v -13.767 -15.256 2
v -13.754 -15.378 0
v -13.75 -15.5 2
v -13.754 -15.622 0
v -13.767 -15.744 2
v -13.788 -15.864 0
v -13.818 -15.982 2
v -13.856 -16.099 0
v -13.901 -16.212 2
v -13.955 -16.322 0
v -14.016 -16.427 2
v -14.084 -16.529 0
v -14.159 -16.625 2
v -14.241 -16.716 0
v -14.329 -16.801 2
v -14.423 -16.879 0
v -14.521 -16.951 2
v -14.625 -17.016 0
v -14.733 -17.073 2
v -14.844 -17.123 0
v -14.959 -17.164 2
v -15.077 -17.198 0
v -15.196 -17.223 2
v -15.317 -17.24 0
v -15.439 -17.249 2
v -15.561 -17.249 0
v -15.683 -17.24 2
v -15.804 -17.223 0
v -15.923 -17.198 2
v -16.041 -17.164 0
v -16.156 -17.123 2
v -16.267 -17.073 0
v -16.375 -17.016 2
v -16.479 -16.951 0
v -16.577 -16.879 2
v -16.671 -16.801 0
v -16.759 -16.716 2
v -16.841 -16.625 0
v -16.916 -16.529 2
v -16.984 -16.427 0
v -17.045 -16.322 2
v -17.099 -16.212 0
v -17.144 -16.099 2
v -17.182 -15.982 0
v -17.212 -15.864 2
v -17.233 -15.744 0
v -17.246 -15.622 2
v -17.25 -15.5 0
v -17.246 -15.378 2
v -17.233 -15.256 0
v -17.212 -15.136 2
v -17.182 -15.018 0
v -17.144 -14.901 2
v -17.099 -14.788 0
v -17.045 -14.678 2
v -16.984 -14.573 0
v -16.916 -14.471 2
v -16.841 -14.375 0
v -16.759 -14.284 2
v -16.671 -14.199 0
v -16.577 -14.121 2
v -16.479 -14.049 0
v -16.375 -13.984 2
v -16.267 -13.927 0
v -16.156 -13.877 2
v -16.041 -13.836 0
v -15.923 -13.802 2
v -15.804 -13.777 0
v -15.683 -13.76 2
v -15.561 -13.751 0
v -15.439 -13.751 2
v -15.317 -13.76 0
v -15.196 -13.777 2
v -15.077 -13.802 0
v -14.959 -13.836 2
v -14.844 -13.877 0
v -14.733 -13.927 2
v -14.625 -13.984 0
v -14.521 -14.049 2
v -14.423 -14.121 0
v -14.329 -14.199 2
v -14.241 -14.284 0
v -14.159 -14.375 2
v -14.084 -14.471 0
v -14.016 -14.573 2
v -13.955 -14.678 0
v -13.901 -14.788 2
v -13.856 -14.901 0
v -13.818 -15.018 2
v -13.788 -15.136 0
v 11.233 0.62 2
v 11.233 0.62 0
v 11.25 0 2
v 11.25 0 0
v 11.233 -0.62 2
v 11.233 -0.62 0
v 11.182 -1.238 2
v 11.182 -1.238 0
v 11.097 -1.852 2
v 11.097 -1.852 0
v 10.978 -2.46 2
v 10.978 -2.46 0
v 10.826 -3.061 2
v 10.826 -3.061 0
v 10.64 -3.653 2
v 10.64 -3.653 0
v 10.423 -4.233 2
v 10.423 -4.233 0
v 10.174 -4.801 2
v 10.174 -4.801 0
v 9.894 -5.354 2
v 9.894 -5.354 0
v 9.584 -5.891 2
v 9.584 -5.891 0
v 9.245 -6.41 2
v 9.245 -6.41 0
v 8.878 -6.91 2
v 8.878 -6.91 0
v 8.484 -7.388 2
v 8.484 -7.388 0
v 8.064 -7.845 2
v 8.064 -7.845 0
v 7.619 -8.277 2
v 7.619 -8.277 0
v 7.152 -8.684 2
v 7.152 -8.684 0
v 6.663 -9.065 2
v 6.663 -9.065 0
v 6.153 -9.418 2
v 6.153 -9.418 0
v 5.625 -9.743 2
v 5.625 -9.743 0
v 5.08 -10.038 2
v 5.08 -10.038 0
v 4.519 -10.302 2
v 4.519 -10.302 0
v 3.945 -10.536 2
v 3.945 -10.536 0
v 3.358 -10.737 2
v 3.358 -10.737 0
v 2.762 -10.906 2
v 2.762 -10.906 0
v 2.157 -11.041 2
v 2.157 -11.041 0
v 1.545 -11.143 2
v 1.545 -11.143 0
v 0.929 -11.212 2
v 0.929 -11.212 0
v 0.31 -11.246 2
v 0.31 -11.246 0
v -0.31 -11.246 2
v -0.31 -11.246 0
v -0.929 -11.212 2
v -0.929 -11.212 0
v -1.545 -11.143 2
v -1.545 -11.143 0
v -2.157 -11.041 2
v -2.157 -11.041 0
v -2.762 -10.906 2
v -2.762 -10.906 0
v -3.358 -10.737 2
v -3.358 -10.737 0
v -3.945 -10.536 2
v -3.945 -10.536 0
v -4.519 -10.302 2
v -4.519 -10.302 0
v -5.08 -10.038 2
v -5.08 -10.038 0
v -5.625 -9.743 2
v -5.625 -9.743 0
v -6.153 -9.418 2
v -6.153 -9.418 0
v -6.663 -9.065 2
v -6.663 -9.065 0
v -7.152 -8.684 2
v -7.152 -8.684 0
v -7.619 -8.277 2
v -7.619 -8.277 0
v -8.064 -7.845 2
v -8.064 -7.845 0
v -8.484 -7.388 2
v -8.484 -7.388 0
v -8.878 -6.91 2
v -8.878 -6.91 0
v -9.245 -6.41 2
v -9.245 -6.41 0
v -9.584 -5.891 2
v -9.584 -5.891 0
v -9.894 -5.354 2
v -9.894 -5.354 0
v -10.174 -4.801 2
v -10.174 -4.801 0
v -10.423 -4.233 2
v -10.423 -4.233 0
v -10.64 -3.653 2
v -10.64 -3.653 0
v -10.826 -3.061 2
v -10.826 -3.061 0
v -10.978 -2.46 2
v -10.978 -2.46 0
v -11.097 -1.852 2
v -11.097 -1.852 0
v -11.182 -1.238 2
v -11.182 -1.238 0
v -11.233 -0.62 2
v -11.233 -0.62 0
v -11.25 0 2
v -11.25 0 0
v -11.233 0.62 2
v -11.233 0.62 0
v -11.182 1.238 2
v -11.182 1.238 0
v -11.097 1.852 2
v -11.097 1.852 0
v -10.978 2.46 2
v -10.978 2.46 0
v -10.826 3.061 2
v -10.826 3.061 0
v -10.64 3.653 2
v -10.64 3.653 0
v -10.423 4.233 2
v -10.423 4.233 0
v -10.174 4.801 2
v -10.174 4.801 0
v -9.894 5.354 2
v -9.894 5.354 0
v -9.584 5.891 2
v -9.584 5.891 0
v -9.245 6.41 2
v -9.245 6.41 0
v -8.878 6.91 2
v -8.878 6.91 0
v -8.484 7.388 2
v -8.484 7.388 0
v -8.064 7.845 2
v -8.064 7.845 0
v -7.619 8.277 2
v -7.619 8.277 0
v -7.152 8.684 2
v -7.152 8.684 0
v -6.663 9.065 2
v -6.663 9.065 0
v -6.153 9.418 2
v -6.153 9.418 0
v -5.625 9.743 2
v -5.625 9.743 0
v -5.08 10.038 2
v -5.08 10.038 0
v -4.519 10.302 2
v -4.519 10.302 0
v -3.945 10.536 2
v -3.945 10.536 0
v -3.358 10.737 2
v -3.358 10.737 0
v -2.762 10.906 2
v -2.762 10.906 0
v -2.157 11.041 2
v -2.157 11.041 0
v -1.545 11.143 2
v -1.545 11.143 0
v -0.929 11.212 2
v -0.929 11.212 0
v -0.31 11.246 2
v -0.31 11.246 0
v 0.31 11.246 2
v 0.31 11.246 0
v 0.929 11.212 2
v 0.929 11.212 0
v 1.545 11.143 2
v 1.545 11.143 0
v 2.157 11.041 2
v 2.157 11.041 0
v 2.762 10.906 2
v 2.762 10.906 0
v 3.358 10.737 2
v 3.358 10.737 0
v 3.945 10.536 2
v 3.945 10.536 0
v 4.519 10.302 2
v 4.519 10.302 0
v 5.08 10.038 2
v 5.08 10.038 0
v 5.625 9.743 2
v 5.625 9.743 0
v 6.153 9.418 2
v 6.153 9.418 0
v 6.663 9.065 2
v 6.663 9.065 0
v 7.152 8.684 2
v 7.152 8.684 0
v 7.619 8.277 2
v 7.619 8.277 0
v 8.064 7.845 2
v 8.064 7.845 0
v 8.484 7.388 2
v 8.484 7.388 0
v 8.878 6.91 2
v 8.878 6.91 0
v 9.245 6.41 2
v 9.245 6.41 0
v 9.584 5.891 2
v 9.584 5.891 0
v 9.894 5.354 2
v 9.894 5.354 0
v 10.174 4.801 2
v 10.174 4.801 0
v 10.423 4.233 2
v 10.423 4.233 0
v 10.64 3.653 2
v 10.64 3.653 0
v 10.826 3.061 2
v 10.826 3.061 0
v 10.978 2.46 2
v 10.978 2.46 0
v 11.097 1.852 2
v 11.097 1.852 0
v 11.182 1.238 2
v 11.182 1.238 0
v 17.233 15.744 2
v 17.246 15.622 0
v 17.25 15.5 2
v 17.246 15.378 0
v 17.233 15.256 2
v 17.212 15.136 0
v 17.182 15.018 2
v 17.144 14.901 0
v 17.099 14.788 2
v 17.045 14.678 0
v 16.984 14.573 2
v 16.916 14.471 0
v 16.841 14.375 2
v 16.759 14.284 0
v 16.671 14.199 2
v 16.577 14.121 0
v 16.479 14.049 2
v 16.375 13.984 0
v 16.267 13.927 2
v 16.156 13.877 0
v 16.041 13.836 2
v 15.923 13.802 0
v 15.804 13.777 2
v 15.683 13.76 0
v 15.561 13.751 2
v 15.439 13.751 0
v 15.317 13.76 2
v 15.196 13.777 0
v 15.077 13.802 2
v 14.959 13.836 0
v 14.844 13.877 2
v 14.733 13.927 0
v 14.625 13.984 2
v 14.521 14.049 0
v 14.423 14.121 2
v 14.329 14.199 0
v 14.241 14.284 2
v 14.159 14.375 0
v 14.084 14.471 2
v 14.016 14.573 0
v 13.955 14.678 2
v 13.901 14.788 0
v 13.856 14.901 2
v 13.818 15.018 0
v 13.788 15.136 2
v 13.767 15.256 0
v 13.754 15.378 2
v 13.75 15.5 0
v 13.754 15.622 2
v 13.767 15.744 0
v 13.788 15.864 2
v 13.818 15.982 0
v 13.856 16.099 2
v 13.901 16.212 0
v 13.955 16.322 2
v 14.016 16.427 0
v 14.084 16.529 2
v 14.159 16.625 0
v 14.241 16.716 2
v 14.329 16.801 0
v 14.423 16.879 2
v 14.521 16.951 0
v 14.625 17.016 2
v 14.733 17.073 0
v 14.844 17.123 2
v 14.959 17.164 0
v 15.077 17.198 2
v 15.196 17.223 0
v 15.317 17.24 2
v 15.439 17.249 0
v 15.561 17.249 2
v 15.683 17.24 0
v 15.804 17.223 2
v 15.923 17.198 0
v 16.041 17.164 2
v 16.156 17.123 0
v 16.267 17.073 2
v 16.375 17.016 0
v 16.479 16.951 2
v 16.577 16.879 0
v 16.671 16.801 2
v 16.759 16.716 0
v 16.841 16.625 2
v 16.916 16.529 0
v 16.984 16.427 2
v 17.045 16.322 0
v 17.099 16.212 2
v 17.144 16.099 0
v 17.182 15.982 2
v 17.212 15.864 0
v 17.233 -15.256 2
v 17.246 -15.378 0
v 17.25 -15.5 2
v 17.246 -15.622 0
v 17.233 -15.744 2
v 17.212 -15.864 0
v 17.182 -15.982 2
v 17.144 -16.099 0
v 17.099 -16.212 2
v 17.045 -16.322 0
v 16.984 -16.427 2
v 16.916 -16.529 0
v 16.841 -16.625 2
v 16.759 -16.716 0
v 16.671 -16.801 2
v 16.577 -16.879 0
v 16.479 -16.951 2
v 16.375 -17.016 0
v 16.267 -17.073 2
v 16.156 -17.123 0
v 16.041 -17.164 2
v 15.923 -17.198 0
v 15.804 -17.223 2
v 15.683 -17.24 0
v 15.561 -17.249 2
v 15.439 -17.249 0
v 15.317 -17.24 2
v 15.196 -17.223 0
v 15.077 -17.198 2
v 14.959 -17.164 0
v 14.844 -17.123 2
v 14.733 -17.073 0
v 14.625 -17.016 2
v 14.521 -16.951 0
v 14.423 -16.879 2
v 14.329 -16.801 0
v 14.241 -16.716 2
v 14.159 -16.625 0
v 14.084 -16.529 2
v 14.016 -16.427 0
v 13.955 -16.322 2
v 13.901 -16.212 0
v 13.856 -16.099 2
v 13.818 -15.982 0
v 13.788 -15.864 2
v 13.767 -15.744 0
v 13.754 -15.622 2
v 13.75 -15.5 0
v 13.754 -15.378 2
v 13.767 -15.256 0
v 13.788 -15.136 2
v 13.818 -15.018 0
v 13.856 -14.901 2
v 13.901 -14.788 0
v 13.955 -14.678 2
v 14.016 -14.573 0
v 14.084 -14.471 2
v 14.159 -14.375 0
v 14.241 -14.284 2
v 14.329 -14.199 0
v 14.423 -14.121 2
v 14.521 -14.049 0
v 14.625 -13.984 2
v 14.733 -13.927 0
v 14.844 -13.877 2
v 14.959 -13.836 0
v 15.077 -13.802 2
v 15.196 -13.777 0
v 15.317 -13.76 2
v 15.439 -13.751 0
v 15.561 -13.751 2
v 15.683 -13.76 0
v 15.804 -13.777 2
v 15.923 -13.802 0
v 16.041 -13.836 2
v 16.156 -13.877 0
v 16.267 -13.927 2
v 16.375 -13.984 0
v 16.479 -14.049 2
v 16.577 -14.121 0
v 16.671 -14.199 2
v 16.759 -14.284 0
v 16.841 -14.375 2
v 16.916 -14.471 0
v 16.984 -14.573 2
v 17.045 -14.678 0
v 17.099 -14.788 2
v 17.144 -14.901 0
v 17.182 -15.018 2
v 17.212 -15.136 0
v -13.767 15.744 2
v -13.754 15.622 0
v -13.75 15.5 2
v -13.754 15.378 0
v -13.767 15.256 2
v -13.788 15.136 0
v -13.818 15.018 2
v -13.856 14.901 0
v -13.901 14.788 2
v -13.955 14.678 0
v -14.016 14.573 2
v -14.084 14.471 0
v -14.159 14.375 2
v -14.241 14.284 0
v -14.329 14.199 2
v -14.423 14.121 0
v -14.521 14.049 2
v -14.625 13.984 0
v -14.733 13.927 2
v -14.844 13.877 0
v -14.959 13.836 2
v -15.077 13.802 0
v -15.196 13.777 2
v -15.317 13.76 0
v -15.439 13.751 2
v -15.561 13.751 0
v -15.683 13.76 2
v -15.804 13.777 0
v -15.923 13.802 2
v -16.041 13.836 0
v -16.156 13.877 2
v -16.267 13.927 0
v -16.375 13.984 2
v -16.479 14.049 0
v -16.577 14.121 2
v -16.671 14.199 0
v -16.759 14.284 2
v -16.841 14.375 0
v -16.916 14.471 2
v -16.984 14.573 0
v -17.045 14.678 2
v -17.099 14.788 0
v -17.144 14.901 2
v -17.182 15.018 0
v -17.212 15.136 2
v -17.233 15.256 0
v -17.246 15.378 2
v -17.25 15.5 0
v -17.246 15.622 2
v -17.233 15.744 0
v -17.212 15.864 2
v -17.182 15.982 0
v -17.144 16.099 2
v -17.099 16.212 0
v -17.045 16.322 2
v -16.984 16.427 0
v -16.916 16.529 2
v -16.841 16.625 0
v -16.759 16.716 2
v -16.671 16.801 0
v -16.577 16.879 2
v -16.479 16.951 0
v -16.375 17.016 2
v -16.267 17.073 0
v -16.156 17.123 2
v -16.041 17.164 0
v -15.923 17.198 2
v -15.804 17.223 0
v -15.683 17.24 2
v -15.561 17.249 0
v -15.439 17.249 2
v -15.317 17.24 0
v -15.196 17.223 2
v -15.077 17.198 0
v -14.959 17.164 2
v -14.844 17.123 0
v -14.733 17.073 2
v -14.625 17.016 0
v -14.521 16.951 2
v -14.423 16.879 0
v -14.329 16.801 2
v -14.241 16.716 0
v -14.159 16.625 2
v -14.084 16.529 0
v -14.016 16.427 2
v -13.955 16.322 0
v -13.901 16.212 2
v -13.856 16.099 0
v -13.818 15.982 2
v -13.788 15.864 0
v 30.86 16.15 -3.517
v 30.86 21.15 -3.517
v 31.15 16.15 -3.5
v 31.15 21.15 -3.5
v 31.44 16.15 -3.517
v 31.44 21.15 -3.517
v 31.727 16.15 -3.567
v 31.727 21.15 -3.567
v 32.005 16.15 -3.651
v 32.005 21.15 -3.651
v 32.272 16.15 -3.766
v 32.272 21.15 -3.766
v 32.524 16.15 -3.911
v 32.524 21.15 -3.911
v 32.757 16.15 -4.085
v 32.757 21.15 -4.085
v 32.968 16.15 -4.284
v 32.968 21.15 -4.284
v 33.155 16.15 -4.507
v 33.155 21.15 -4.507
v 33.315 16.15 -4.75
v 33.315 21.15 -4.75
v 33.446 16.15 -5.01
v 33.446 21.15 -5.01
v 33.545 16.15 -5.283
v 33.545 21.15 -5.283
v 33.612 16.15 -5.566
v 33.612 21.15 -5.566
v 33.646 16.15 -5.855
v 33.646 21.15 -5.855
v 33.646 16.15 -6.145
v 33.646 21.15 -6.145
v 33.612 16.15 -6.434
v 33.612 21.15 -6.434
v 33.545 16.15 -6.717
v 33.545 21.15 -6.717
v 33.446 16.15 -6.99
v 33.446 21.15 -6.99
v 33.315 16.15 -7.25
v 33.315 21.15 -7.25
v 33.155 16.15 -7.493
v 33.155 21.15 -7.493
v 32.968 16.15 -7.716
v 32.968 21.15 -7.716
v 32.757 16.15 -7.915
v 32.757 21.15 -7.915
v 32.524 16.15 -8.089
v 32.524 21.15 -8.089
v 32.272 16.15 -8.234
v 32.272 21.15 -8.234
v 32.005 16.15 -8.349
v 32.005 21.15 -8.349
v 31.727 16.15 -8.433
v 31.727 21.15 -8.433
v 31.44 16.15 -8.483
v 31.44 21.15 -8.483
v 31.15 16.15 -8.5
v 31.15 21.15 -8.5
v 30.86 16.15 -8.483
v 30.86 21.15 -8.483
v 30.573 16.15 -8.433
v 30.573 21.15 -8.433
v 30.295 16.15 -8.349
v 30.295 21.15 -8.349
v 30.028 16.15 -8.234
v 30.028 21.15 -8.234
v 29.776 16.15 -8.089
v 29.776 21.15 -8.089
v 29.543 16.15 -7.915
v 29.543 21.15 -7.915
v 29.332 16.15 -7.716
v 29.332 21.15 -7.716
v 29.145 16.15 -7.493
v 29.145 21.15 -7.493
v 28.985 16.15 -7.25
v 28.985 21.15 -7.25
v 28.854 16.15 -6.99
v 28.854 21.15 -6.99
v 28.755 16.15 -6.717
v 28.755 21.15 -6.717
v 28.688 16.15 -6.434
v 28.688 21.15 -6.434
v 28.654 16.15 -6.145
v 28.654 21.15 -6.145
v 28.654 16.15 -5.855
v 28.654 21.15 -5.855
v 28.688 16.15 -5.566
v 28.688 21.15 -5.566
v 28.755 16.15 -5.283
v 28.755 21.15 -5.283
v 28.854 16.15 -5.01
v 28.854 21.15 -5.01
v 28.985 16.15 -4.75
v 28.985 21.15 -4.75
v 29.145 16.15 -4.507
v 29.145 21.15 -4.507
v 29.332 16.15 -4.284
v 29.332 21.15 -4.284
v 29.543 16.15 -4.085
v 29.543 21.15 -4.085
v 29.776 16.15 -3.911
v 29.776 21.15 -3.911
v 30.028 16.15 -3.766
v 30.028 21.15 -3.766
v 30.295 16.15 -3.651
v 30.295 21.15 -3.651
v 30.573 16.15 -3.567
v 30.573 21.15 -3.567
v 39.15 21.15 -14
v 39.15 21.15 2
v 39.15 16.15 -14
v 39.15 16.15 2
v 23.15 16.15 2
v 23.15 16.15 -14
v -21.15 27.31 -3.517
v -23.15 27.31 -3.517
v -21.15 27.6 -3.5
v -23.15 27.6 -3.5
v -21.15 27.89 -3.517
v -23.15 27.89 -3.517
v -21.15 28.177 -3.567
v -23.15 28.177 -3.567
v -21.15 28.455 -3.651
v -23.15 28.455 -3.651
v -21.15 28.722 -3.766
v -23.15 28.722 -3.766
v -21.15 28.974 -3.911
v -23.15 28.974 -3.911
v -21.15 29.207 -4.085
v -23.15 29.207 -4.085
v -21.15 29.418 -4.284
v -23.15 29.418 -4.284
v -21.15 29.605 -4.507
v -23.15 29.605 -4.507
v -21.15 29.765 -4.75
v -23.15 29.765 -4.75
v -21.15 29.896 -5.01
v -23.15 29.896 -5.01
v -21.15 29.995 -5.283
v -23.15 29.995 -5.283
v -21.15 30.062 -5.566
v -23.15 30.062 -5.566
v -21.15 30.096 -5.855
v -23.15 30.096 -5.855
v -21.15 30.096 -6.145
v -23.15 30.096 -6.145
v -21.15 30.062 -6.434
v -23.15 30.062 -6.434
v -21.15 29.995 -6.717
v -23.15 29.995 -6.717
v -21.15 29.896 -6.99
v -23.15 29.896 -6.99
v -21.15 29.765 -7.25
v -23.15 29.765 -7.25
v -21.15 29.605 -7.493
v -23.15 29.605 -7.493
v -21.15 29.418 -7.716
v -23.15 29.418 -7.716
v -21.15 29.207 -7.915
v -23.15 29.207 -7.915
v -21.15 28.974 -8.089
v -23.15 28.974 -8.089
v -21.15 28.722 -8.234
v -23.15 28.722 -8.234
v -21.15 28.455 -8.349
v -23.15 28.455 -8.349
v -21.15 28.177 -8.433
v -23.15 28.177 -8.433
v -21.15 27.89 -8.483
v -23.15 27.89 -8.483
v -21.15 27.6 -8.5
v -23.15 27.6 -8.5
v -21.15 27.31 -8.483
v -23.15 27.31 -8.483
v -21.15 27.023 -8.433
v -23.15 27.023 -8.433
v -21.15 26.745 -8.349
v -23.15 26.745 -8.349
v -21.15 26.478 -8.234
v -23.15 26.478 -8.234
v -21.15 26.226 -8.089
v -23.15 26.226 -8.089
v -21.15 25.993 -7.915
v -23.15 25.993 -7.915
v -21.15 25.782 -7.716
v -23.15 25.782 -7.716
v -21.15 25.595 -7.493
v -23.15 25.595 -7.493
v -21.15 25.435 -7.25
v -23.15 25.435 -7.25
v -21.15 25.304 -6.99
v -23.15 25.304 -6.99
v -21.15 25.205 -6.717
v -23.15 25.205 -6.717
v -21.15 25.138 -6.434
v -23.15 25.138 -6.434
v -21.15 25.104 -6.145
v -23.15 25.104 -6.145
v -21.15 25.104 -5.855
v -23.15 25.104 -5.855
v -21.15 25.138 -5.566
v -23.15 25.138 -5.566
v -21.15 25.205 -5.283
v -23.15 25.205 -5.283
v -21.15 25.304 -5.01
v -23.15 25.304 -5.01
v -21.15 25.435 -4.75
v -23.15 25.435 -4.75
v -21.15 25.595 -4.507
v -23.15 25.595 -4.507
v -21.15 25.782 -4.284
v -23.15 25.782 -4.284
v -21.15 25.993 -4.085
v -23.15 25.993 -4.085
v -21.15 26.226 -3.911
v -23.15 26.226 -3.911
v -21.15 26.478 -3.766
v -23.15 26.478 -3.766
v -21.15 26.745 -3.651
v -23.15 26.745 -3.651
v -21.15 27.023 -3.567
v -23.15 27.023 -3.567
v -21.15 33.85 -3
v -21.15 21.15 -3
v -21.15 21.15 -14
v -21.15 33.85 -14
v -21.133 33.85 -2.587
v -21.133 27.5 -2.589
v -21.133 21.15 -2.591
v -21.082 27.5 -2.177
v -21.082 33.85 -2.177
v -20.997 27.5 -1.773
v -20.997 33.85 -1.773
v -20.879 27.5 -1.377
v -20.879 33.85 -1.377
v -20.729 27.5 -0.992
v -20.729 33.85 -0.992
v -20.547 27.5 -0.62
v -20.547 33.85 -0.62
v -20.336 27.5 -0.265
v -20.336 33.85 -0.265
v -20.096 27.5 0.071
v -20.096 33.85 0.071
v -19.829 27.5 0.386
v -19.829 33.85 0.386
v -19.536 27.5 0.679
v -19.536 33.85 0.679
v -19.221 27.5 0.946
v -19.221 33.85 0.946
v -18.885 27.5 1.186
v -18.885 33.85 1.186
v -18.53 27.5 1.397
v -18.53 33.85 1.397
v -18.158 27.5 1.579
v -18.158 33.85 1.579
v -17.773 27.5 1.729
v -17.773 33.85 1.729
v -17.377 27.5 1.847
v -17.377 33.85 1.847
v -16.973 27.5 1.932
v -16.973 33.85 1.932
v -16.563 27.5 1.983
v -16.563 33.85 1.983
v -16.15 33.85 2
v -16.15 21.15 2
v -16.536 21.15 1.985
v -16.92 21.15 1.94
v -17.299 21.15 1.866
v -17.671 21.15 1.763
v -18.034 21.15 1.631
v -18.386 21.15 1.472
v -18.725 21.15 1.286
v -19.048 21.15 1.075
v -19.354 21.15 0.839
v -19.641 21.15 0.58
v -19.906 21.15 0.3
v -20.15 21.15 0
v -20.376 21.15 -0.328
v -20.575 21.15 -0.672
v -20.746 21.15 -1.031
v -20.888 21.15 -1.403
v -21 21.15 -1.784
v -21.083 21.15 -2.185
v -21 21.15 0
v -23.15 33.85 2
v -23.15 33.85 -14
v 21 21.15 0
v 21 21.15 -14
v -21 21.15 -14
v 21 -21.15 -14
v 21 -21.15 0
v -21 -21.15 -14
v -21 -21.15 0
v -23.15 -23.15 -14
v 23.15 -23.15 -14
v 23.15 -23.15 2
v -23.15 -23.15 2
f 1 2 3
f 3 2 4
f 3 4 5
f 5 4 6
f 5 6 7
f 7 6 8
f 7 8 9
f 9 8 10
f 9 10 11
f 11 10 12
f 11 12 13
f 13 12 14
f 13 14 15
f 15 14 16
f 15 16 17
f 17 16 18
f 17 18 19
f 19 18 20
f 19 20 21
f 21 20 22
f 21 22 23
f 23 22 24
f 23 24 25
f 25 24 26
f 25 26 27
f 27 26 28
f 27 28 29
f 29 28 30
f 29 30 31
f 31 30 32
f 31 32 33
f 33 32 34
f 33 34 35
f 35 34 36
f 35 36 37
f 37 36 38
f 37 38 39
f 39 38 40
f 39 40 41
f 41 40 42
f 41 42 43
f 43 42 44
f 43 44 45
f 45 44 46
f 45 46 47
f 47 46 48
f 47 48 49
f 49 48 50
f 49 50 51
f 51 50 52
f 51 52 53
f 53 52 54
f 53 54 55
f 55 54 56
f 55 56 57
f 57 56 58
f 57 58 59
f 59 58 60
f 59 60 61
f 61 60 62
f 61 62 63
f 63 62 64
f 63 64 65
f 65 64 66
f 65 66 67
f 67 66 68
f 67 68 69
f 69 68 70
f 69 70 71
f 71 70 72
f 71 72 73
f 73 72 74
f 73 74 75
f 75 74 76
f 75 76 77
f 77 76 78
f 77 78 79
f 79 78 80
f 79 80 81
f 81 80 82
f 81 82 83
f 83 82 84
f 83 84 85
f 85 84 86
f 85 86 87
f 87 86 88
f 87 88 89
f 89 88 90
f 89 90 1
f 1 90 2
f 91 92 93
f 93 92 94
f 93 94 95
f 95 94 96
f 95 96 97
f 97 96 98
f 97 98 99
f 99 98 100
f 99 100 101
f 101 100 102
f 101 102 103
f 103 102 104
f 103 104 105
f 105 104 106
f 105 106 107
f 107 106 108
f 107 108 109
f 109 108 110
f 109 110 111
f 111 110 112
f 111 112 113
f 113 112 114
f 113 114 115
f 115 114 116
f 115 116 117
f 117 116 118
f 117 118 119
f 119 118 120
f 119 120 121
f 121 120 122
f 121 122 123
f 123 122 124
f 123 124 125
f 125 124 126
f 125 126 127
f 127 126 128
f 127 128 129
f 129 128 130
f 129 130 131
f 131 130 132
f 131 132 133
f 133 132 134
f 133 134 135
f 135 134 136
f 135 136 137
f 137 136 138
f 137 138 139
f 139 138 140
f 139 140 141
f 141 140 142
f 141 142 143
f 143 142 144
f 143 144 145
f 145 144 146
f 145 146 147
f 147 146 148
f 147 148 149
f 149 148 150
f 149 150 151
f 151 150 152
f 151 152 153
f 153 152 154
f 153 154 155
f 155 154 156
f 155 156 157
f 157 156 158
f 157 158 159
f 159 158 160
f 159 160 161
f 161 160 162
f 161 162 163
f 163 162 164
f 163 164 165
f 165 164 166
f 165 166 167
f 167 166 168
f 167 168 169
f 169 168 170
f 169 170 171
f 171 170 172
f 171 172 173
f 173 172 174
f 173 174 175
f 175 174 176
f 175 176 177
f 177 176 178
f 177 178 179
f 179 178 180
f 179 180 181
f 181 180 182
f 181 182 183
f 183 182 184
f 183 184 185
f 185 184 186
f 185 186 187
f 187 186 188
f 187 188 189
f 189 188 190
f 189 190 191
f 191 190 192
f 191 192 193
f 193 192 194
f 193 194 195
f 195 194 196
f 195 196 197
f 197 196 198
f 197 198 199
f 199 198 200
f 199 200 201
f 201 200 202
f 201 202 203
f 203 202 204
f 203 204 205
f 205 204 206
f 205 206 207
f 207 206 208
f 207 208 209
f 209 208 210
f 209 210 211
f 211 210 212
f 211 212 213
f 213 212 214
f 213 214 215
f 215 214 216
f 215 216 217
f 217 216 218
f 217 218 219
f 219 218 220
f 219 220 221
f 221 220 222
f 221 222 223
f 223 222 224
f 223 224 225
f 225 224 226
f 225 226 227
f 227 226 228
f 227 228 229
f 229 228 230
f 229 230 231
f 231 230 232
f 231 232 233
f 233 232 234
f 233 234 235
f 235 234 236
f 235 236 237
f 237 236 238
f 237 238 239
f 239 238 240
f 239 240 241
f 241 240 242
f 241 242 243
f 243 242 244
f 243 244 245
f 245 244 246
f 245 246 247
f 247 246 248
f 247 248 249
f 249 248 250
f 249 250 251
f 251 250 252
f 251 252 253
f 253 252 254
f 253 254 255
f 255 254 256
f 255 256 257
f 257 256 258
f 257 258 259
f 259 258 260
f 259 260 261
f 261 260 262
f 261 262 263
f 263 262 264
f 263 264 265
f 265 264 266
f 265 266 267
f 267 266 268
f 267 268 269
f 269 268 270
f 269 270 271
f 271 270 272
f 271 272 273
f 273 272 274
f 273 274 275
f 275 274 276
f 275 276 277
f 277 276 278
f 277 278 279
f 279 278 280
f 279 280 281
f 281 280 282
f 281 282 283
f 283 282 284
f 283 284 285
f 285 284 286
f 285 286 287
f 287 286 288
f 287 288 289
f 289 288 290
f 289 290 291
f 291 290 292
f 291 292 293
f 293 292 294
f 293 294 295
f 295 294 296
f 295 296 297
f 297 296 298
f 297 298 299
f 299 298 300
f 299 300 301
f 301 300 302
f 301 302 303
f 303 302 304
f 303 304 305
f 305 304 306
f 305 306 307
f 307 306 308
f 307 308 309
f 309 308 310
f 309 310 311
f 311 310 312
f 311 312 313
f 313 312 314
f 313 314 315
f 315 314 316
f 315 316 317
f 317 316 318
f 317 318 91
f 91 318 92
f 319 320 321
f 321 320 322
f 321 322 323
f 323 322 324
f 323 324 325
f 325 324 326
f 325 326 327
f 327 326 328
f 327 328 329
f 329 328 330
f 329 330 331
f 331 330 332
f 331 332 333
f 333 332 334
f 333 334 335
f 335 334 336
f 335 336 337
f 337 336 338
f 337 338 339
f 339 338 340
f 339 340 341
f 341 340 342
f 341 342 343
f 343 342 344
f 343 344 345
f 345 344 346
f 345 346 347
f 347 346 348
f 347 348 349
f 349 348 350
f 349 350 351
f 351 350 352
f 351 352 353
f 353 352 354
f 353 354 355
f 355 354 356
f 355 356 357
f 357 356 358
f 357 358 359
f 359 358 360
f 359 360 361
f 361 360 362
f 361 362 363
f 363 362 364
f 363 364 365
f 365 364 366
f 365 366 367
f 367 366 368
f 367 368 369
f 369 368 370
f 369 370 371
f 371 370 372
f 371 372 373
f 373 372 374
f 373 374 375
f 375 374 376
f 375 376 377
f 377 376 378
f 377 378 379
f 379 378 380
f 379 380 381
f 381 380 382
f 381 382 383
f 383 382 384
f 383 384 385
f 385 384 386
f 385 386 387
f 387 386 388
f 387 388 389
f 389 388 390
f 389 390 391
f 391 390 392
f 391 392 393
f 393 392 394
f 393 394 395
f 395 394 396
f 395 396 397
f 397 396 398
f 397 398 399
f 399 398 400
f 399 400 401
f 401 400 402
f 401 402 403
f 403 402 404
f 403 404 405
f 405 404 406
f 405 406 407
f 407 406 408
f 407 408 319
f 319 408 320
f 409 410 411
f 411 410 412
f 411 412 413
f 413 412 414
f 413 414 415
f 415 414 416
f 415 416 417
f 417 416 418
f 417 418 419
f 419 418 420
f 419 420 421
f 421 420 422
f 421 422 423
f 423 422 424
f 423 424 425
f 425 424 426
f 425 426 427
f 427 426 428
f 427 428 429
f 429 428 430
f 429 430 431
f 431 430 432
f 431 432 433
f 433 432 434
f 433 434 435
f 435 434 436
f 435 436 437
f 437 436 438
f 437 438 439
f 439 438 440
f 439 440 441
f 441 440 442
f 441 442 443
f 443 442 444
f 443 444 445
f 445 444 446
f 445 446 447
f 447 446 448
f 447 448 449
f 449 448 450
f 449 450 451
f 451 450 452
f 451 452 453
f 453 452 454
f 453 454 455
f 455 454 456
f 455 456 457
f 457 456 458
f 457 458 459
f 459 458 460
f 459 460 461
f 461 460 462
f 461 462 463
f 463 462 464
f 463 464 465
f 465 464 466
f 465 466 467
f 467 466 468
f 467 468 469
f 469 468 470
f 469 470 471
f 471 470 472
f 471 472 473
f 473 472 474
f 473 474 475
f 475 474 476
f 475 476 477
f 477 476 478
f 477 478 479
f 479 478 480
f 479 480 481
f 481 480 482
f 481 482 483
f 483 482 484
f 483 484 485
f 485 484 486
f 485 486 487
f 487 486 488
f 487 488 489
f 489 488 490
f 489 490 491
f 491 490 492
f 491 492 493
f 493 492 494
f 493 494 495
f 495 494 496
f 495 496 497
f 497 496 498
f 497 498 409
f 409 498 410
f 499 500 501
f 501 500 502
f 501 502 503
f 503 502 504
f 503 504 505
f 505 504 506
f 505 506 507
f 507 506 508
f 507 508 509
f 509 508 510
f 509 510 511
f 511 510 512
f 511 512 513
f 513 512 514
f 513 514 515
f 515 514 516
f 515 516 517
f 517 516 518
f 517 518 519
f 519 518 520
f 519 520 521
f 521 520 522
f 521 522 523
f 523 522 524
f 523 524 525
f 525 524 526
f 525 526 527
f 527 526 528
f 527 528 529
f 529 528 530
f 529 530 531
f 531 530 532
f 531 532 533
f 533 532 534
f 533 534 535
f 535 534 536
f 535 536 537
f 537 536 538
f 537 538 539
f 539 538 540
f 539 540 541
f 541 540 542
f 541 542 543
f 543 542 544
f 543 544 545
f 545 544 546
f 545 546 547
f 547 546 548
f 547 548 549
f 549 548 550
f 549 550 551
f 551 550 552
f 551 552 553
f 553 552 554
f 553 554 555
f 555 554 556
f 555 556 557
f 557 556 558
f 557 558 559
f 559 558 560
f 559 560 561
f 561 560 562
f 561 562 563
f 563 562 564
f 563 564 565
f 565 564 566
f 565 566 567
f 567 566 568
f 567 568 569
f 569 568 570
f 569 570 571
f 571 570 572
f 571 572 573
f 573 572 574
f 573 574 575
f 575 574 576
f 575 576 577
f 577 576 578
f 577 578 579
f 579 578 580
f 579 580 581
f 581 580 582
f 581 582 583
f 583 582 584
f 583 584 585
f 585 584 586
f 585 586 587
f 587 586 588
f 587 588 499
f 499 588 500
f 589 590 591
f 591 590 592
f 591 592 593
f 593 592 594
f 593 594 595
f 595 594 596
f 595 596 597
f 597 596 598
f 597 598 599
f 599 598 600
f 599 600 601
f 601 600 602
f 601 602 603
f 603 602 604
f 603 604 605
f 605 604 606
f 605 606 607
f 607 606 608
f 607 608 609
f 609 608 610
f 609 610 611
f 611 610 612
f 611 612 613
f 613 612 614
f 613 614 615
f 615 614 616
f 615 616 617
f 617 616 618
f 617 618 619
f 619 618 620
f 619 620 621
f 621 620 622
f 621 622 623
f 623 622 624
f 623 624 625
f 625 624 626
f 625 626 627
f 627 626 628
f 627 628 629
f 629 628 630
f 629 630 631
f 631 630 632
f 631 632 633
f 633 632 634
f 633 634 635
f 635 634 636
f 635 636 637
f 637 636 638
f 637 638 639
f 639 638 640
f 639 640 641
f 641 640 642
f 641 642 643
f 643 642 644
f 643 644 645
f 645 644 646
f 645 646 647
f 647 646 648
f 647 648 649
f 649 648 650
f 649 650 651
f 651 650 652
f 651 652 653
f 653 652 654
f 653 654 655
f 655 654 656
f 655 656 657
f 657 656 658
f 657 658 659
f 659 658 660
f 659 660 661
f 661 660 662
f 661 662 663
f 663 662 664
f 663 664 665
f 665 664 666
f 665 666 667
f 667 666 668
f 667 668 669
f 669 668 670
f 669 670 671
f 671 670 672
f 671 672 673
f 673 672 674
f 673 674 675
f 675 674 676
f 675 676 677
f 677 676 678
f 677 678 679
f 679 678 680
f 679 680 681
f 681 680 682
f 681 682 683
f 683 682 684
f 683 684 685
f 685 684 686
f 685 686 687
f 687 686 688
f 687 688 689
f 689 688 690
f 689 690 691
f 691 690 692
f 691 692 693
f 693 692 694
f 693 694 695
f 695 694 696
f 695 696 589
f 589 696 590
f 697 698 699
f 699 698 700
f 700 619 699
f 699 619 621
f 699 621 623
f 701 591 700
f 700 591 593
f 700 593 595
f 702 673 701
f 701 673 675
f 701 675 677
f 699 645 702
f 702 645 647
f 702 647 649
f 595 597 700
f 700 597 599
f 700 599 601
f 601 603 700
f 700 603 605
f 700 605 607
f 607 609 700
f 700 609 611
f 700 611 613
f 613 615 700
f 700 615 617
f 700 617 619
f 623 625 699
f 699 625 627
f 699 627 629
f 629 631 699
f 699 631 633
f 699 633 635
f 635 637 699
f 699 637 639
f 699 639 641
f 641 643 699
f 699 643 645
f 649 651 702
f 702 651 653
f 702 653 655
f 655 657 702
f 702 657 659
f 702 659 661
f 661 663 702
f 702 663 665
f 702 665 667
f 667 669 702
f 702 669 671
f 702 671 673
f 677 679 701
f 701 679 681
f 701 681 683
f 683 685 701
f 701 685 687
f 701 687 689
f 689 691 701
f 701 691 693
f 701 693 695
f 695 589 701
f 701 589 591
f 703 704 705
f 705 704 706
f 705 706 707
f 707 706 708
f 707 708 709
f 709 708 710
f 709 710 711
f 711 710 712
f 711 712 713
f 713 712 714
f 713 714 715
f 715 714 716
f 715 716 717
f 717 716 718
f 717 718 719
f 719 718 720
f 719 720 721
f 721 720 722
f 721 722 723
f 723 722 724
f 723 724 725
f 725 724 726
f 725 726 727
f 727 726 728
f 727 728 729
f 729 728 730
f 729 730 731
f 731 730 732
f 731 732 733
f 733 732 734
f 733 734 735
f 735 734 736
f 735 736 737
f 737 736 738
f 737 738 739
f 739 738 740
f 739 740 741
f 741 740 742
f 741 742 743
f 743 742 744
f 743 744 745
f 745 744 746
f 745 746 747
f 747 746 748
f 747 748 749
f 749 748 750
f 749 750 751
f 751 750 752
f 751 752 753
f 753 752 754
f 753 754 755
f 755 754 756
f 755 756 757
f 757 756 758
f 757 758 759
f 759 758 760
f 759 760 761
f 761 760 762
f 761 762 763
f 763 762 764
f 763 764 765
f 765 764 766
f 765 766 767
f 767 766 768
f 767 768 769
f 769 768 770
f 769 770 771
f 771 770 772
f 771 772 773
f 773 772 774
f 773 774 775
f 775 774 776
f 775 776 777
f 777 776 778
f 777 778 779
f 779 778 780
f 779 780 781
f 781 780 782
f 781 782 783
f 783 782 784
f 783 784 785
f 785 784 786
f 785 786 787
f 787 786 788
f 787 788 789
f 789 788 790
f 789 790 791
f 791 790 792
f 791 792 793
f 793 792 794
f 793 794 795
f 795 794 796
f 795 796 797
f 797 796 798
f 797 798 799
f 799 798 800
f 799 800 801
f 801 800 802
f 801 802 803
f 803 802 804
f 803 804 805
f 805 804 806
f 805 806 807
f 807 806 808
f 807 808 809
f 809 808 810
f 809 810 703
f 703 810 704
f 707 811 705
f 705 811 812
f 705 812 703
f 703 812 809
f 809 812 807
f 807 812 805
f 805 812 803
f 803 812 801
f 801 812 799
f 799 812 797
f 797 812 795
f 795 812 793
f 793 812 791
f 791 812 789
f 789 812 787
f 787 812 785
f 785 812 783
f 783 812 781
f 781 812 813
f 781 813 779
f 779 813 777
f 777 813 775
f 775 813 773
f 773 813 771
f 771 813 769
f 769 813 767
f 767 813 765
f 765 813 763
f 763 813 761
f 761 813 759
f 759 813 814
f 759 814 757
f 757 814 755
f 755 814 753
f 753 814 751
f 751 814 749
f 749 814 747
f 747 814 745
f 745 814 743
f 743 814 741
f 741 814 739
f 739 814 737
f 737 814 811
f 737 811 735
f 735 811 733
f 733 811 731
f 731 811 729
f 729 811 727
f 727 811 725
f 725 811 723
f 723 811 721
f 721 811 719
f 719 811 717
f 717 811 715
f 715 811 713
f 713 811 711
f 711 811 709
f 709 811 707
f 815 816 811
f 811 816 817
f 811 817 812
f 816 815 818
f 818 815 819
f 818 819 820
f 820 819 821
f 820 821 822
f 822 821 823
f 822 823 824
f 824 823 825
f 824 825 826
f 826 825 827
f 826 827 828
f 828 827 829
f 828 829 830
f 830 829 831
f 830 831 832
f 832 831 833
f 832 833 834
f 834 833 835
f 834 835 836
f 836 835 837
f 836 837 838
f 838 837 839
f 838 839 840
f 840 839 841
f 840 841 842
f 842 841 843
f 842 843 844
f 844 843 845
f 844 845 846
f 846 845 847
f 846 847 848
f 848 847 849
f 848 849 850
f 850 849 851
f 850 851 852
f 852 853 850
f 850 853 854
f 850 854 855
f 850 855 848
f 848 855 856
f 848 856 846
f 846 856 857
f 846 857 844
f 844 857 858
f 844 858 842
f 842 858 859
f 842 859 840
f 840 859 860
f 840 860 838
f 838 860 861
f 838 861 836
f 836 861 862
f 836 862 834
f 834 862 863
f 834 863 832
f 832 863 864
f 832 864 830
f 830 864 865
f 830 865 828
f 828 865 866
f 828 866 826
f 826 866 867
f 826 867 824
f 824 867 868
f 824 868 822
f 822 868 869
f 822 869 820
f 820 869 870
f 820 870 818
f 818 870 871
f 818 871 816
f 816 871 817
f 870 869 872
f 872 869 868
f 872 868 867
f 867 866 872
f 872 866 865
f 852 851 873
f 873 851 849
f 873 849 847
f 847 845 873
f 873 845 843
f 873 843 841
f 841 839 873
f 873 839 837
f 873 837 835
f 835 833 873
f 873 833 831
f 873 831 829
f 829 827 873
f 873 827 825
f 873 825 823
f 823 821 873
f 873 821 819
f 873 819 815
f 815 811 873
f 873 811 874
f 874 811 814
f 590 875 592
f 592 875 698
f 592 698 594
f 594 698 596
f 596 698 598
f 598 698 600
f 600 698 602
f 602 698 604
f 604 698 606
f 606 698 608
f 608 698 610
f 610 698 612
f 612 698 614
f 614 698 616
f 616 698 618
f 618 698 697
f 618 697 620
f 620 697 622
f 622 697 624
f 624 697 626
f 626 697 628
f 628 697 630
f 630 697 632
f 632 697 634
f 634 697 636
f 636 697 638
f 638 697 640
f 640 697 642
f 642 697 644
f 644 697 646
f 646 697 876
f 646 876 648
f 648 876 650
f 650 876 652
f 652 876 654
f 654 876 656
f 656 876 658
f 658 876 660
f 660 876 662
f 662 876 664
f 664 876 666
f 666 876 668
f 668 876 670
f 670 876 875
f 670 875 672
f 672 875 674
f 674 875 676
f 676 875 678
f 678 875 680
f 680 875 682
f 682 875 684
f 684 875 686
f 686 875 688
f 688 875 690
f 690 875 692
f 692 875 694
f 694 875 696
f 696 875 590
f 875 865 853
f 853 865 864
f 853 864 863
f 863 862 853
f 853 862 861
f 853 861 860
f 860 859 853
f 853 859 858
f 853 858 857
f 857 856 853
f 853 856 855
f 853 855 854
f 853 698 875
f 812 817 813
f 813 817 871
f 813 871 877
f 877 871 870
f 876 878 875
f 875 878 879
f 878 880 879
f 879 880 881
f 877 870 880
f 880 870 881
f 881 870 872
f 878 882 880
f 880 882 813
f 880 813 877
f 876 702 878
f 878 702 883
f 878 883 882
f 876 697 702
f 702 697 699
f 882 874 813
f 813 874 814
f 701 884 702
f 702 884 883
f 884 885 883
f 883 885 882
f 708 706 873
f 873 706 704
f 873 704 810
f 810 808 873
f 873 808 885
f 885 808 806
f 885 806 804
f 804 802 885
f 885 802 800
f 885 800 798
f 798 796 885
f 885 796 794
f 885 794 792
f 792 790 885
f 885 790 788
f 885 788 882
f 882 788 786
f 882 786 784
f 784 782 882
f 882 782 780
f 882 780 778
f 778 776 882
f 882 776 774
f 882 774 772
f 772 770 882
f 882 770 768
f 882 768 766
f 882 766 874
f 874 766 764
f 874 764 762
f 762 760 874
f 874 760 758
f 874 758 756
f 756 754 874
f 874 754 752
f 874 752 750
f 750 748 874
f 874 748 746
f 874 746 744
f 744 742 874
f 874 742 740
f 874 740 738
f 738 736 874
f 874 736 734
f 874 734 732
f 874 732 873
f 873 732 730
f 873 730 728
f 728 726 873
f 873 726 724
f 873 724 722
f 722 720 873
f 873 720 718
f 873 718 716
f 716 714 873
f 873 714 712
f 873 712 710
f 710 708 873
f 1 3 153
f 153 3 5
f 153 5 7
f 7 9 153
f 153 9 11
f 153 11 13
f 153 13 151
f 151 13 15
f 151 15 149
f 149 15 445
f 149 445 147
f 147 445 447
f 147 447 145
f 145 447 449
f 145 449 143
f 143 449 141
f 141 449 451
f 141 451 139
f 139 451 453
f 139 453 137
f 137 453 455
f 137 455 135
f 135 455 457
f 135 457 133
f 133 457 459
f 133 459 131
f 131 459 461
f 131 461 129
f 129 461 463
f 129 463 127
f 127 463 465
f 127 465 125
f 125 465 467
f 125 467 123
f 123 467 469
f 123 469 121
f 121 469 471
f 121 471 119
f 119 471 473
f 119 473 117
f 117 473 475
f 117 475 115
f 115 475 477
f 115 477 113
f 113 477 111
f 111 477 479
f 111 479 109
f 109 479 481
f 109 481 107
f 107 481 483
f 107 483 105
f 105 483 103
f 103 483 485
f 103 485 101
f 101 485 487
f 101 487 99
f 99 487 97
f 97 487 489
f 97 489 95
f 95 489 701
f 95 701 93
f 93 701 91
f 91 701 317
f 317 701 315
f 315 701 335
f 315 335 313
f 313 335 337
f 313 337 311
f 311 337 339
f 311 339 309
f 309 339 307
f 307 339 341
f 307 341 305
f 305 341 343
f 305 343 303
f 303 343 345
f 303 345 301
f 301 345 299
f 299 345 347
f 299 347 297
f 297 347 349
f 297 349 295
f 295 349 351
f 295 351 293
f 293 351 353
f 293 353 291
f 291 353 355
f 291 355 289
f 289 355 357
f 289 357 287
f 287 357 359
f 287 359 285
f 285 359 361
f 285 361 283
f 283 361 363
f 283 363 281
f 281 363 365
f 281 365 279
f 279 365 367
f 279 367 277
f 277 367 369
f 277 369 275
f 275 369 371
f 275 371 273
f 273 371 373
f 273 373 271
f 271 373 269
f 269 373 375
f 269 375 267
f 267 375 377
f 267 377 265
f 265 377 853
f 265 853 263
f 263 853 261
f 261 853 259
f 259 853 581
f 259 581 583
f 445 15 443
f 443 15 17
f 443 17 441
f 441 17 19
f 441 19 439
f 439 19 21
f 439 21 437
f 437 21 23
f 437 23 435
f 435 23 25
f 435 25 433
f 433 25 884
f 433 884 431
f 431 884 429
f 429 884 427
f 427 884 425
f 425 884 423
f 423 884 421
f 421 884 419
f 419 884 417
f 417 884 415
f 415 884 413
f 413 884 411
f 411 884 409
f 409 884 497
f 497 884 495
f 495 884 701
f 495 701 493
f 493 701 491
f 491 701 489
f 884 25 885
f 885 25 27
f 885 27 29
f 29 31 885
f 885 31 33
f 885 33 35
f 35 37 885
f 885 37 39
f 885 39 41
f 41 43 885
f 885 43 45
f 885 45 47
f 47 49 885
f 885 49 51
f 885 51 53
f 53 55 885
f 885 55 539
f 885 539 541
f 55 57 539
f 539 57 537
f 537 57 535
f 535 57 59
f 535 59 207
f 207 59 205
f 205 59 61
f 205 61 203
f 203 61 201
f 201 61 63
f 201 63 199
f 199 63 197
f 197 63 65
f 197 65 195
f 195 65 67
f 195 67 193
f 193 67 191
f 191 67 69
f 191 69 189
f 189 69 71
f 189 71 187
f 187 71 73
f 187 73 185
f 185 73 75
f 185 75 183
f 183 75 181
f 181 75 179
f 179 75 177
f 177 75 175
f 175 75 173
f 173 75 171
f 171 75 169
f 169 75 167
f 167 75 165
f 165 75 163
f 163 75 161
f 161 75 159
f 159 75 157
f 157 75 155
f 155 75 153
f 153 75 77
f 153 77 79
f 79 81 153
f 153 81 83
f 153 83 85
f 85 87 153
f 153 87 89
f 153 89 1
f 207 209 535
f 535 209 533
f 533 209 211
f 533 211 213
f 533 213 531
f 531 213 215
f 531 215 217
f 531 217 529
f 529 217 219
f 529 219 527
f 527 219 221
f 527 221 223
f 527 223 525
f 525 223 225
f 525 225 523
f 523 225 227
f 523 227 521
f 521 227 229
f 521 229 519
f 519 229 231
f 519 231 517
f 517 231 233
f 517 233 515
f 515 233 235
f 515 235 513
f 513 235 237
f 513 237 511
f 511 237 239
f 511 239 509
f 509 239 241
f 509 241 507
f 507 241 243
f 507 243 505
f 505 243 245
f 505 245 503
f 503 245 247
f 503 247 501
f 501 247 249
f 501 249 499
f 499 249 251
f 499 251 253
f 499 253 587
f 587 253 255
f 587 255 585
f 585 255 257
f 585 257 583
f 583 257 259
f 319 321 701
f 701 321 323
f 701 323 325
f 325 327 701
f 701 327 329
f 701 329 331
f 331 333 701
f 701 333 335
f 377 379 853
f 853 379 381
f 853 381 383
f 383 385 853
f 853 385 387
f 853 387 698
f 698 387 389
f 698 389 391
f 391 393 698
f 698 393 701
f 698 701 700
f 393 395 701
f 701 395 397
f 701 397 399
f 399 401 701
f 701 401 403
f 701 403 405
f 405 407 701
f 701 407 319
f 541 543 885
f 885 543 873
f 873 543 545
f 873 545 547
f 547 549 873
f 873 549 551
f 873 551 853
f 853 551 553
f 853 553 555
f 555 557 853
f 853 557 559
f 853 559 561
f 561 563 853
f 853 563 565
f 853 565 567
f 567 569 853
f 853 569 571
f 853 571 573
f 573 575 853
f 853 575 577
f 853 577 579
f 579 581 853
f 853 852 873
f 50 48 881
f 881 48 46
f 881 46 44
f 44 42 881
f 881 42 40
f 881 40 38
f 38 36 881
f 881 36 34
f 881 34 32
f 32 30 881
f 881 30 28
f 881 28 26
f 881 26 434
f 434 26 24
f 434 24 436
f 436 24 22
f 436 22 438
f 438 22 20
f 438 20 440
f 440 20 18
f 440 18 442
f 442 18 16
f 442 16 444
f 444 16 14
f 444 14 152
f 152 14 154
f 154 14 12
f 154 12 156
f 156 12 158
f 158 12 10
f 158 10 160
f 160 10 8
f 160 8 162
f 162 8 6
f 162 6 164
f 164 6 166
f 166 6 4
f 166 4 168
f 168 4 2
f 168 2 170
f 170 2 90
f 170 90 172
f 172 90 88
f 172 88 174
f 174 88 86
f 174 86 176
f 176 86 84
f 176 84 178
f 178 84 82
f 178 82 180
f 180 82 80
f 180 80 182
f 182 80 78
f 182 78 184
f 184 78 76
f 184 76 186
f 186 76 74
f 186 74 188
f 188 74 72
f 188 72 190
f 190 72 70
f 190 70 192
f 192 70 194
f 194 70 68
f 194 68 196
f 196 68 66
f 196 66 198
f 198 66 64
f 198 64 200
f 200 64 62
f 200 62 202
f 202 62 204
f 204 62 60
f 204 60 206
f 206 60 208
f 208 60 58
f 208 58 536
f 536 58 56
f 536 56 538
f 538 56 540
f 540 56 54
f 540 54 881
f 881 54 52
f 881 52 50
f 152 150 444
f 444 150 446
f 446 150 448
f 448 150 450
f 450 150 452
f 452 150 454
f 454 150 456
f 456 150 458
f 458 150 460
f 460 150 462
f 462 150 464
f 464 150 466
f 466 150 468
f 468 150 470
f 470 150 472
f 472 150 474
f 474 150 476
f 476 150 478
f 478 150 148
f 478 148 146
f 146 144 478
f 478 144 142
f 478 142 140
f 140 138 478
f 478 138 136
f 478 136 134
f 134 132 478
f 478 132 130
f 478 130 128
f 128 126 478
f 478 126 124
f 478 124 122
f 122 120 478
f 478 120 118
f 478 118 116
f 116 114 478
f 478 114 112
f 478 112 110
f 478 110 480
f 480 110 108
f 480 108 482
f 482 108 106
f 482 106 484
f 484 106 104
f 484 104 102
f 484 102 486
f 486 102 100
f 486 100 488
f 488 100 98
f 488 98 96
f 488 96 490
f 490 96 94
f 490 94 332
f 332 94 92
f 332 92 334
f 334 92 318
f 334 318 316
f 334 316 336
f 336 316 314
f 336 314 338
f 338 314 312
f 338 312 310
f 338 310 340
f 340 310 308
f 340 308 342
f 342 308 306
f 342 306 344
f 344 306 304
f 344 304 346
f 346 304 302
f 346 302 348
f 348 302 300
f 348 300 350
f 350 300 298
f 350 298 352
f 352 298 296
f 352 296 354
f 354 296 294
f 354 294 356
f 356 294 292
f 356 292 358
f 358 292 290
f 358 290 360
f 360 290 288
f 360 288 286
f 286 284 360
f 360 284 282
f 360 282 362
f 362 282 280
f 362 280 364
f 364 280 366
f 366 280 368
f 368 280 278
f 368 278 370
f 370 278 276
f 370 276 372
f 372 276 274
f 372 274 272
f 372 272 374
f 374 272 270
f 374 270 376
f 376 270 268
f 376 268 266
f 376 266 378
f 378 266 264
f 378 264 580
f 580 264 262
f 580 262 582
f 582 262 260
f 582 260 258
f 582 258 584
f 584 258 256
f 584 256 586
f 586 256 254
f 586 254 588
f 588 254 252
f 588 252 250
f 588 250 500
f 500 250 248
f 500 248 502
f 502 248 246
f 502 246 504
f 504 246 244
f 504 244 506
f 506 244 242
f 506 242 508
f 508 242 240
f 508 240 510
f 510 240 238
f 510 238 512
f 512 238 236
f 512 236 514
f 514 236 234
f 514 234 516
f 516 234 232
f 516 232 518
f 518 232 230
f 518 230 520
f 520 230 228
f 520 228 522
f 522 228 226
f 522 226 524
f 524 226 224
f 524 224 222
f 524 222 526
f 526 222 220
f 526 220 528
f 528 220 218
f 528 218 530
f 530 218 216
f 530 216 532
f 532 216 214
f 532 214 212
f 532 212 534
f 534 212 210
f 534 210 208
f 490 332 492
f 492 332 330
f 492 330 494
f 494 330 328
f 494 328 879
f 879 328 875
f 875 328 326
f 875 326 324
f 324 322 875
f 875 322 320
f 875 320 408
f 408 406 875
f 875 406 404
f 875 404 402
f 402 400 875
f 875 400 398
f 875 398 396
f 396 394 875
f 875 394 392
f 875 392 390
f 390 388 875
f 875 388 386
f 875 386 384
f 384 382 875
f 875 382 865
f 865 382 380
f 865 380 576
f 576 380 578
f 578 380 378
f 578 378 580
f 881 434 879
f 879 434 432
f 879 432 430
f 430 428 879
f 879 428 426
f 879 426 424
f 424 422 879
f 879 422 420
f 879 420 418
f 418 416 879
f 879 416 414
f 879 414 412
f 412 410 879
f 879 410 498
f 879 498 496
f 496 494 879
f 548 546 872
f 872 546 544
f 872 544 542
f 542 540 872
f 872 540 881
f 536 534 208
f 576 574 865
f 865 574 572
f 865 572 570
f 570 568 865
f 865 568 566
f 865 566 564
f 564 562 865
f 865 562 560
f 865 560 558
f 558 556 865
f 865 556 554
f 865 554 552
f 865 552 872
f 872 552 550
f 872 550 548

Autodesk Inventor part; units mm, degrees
ref_plane "YZ Plane" through (0, 0, 0) normal (1, 0, 0) x (0, 1, 0)
sketch "Sketch1" plane through (0, 0, 0) normal (0, 0, 1) x (1, 0, 0)
  line L0 (-20, 16.5858) -> (-16.5858, 20) projected
  line L1 (-20, -16.5858) -> (-20, 16.5858) projected
  line L2 (-16.5858, -20) -> (-20, -16.5858) projected
  line L3 (16.5858, -20) -> (-16.5858, -20) projected
  line L4 (20, -16.5858) -> (16.5858, -20) projected
  line L5 (20, 16.5858) -> (20, -16.5858) projected
  line L6 (16.5858, 20) -> (20, 16.5858) projected
  line L7 (-16.5858, 20) -> (16.5858, 20) projected
  circle A0 centre (15.5, -15.5) radius 1.5 projected
  circle A1 centre (-15.5, 15.5) radius 1.5 projected
  circle A2 centre (-15.5, -15.5) radius 1.5 projected
  circle A3 centre (15.5, 15.5) radius 1.5 projected
  circle A4 centre (0, 0) radius 11 projected
  circle A5 centre (0, 0) radius 4.9 projected
  line L8 (13.1931, -21.15) -> (-13.1931, -21.15) projected
  line L9 (-21.15, -13.1931) -> (-21.15, 13.1931) projected
  line L10 (21.15, 21.15) -> (-21.15, 21.15)
  line L11 (-21.15, 21.15) -> (-21.15, -21.15)
  line L12 (-21.15, -21.15) -> (21.15, -21.15)
  line L13 (21.15, -21.15) -> (21.15, 21.15)
  line L14 (21.15, 21.15) -> (-21.15, -21.15) construction
  line L15 (-21.15, 21.15) -> (21.15, -21.15) construction
  line L16 (23.15, -23.15) -> (-23.15, -23.15)
  line L17 (-23.15, -23.15) -> (-23.15, 21.15)
  line L18 (23.15, 21.15) -> (23.15, -23.15)
  line L19 (23.15, 21.15) -> (-23.15, 21.15)
  line L20 (-23.15, 21.15) -> (-23.1187, 21.15)
  line L21 (23.15, 21.15) -> (21.15, 21.15)
  line L22 (-13.1931, -21.15) -> (13.1931, -21.15)
  dimension "d0" = 2
extrude "Extrusion1" add sketch "Sketch1" along normal blind 2 contours L0 L7 L6 L5 L4 L3 L2 L1 | L12 L13 L19 L18 L16 L17 L11 L9 L8 | L8 L12 L11 L9 L10 L13
sketch "Sketch2" plane through (0, 0, 0) normal (0, 0, -1) x (-1, 0, 0)
  line L0 (21, -10) -> (21, 10) projected
  line L1 (-21, 10) -> (-21, -10) projected
  line L2 (-198.65, 21.15) -> (16.15, 21.15) projected
  line L3 (21, -21.15) -> (-21, -21.15)
  line L4 (-21, -21.15) -> (-21, 21.15)
  line L5 (-21, 21.15) -> (21, 21.15)
  line L6 (21, 21.15) -> (21, -21.15)
  line L7 (21, -21.15) -> (-21, 21.15) construction
  line L8 (-21, -21.15) -> (21, 21.15) construction
  line L9 (23.15, -23.15) -> (-23.15, -23.15) projected
  line L10 (-23.15, -23.15) -> (-23.15, 21.15) projected
  line L11 (23.15, 21.15) -> (23.15, -23.15) projected
  line L12 (-23.15, 21.15) -> (23.15, 21.15) projected
  line L13 (21, 21.15) -> (23.15, 21.15)
  line L14 (23.15, 21.15) -> (-21, 21.15)
  line L15 (-21, 21.15) -> (-23.15, 21.15)
  point P0 (0, 0)
ref_plane "Work Plane1" through (-21, -21, -14) normal (0, 0, 1) x (1, 0, 0)
extrude "Extrusion2" add sketch "Sketch2" along normal up to surface (14 mm away) contours L0 L6 L12 L11 L9 L10 L2 L4 L1 L3
sketch "Sketch3" plane through (-23.15, 21.15, 2) normal (0, 1, 0) x (1, 0, 0)
  line L0 (44.15, 2) -> (2.15, 2) projected
  line L1 (2.15, 2) -> (2.15, 16) projected
  line L2 (0, 16) -> (2.15, 16) projected
  line L3 (0, 16) -> (0, 0) projected
  line L4 (46.3, 0) -> (0, 0) projected
  line L5 (46.3, 0) -> (46.3, 16) projected
  line L6 (44.15, 16) -> (46.3, 16) projected
  line L7 (44.15, 2) -> (44.15, 16) projected
  arc A0 (2, -201.375) -> (7, -206.375) centre (7, -201.375) ccw projected
  line L8 (7, -206.375) -> (221.8, -206.375) projected
  arc A1 (221.8, -206.375) -> (226.8, -201.375) centre (221.8, -201.375) ccw projected
  line L9 (226.8, -201.375) -> (226.8, -174.375) projected
  arc A2 (226.8, -174.375) -> (221.8, -169.375) centre (221.8, -174.375) ccw projected
  line L10 (221.8, -169.375) -> (151.8, -169.375) projected
  arc A3 (146.8, -164.375) -> (151.8, -169.375) centre (151.8, -164.375) ccw projected
  line L11 (146.8, -164.375) -> (146.8, 5.625) projected
  arc A4 (151.8, 10.625) -> (146.8, 5.625) centre (151.8, 5.625) ccw projected
  line L12 (151.8, 10.625) -> (221.8, 10.625) projected
  arc A5 (221.8, 10.625) -> (226.8, 15.625) centre (221.8, 15.625) ccw projected
  line L13 (226.8, 15.625) -> (226.8, 42.625) projected
  arc A6 (226.8, 42.625) -> (221.8, 47.625) centre (221.8, 42.625) ccw projected
  line L14 (221.8, 47.625) -> (7, 47.625) projected
  arc A7 (7, 47.625) -> (2, 42.625) centre (7, 42.625) ccw projected
  line L15 (2, 42.625) -> (2, 5) projected
  arc A8 (2, 5) -> (7, 0) centre (7, 5) ccw projected
  line L16 (7, 0) -> (78.6, 0) projected
  arc A9 (83.6, -5) -> (78.6, 0) centre (78.6, -5) ccw projected
  line L17 (83.6, -5) -> (83.6, -153.75) projected
  arc A10 (78.6, -158.75) -> (83.6, -153.75) centre (78.6, -153.75) ccw projected
  line L18 (78.6, -158.75) -> (7, -158.75) projected
  arc A11 (7, -158.75) -> (2, -163.75) centre (7, -163.75) ccw projected
  line L19 (2, -163.75) -> (2, -201.375) projected
  line L20 (2, 5) -> (0, 5)
  circle A12 centre (208.3, 29.125) radius 5 projected
  circle A13 centre (208.3, -187.875) radius 5 projected
  circle A14 centre (20.5, 29.125) radius 5 projected
  circle A15 centre (20.5, -187.875) radius 5 projected
  point P0 (23.15, 2)
  point P1 (2, 16)
ref_plane "Work Plane2" through (-21.15, 33.85, -45.625) normal (0, 1, 0) x (0, 0, 1)
extrude "Extrusion3" add sketch "Sketch3" along normal up to surface (12.7 mm away) contours A8 L4 L3 L20 L1 L0 | L0 L1 A8 | L20 L3 L2 L15
sketch "Sketch4" plane through (-23.15, -23.15, -14) normal (-1, 0, 0) x (0, 0, 1)
  line L0 (0, 0) -> (0, 57) projected
  line L1 (16, 0) -> (16, 57) projected
  line L2 (0, 57) -> (16, 57)
  line L3 (16, 57) -> (16, 44.5)
  line L4 (16, 44.5) -> (0, 44.5)
  line L5 (0, 44.5) -> (0, 57)
  circle A0 centre (8, 50.75) radius 2.5
  point P0 (14, 23.15)
  dimension "d7" = 12.5
  dimension "d8" = 5
extrude "Extrusion4" cut sketch "Sketch4" against normal blind 2 contours A0
ref_plane "Work Plane3" through (81.25, 21.15, 81.375) normal (0, -1, 0) x (0, 0, 1)
sketch "Sketch5" plane through (81.25, 21.15, 81.375) normal (0, -1, 0) x (0, 0, 1)
  line L0 (-95.375, 58.1) -> (-79.375, 58.1) projected
  line L1 (-95.375, 58.1) -> (-79.375, 58.1) projected
  line L2 (-79.375, 104.4) -> (-79.375, 58.1) projected
  line L3 (-95.375, 104.4) -> (-79.375, 104.4) projected
  line L4 (-95.375, 58.1) -> (-95.375, 104.4) projected
  line L5 (-95.375, 58.1) -> (-79.375, 58.1)
  line L6 (-79.375, 58.1) -> (-79.375, 42.1)
  line L7 (-79.375, 42.1) -> (-95.375, 42.1)
  line L8 (-95.375, 42.1) -> (-95.375, 58.1)
  circle A0 centre (-87.375, 50.1) radius 2.5
  point P0 (-81.375, 81.25)
  dimension "d11" = 16
  dimension "d12" = 16
  dimension "d13" = 5
extrude "Extrusion6" add sketch "Sketch5" along normal blind 5 contours L0 L6 L7 L8
sketch "Sketch6" plane through (0, 0, 2) normal (0, 0, 1) x (1, 0, 0)
  circle A0 centre (0, 0) radius 11 projected
  circle A1 centre (15.5, 15.5) radius 1.5 projected
  circle A2 centre (15.5, -15.5) radius 1.5 projected
  circle A3 centre (-15.5, -15.5) radius 1.5 projected
  circle A4 centre (-15.5, 15.5) radius 1.5 projected
  circle A5 centre (0, 0) radius 11.25
  circle A6 centre (15.5, 15.5) radius 1.75
  circle A7 centre (-15.5, 15.5) radius 1.75
  circle A8 centre (15.5, -15.5) radius 1.75
  circle A9 centre (-15.5, -15.5) radius 1.75
  point P0 (0, 0)
  dimension "d18" = 0.25
  dimension "d19" = 0.25
  dimension "d20" = 0.25
  dimension "d21" = 0.25
  dimension "d22" = 0.25
extrude "Extrusion7" cut sketch "Sketch6" against normal up to surface (2 mm away) contours A0 | A1 | A2 | A3 | A4 | A5 | A6 | A7 | A8 | A9
properties part number "PancakeNema17MotorMountOffset"
